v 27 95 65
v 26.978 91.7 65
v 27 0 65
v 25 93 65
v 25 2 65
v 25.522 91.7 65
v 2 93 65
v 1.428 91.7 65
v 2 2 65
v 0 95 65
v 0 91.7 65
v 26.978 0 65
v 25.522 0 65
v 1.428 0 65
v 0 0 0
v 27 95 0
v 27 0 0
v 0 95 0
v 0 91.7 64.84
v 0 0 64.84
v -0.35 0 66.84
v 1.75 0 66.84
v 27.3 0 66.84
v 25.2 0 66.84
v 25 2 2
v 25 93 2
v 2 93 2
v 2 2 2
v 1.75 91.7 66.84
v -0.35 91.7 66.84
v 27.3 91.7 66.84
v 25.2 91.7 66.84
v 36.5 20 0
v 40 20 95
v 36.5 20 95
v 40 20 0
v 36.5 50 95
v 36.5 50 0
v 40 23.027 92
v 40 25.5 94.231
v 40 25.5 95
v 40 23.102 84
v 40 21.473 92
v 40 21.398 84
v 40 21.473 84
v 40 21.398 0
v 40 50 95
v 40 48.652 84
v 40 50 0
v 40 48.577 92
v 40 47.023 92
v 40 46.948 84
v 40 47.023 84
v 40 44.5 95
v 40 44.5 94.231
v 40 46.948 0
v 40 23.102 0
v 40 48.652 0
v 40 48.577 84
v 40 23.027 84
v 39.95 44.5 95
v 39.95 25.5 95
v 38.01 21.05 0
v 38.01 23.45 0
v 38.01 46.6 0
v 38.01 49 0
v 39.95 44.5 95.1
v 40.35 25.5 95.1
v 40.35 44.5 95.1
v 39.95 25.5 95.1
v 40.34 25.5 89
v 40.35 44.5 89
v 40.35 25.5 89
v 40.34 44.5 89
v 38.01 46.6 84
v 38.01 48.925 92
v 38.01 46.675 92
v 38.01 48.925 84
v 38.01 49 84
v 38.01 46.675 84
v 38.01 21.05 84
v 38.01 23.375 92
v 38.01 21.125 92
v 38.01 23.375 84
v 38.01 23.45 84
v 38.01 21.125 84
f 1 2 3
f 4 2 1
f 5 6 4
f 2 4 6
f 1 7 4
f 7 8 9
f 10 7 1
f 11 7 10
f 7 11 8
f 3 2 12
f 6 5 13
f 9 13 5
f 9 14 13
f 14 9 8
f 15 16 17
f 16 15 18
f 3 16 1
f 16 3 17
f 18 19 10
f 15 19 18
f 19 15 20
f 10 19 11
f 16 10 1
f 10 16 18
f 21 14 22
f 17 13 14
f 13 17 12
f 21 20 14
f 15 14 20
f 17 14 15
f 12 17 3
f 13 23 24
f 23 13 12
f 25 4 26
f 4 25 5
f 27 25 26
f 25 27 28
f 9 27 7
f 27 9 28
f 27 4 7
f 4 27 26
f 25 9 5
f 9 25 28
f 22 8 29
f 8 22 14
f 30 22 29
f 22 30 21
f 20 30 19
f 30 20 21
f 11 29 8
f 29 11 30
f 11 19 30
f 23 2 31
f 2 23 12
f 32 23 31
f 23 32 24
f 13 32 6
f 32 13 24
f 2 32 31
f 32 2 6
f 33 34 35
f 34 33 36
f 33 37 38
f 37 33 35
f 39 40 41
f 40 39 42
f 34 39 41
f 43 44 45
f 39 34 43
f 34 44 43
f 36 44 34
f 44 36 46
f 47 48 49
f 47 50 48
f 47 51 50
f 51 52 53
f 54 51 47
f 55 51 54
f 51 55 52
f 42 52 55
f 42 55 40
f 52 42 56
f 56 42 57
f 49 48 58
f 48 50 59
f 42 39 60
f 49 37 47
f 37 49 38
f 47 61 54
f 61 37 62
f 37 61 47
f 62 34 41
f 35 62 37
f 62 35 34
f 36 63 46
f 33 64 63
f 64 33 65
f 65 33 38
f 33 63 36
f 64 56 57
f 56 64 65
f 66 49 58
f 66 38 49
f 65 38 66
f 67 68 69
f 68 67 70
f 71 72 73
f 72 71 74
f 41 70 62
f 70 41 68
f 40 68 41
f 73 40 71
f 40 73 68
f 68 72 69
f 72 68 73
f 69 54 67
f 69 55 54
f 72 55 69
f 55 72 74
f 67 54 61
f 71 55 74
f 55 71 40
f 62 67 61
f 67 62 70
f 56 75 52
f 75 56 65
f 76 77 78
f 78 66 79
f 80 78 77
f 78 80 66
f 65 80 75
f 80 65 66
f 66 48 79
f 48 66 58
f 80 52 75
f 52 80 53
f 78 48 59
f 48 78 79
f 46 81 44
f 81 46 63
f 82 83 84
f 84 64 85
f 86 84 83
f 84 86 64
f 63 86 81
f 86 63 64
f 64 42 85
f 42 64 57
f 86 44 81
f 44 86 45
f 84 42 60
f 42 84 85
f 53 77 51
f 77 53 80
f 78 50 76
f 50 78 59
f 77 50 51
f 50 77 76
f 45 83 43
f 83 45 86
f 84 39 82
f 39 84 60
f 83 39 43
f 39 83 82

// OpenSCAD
include <mycardlib.scad>

// Suitable for a regular deck of ~50 cards with some slack
// Lid slides on the long way for first version, short way second version

box = [27,95,65, 2, 0, 3, [], 2, [0, 0], [0,0]]; // Long slide
//box = [95,27,65, 2, 0, 3, [], 2, [0, 0], [0,0]];  // Short slide

groovebox(box);
groovelid(box);
